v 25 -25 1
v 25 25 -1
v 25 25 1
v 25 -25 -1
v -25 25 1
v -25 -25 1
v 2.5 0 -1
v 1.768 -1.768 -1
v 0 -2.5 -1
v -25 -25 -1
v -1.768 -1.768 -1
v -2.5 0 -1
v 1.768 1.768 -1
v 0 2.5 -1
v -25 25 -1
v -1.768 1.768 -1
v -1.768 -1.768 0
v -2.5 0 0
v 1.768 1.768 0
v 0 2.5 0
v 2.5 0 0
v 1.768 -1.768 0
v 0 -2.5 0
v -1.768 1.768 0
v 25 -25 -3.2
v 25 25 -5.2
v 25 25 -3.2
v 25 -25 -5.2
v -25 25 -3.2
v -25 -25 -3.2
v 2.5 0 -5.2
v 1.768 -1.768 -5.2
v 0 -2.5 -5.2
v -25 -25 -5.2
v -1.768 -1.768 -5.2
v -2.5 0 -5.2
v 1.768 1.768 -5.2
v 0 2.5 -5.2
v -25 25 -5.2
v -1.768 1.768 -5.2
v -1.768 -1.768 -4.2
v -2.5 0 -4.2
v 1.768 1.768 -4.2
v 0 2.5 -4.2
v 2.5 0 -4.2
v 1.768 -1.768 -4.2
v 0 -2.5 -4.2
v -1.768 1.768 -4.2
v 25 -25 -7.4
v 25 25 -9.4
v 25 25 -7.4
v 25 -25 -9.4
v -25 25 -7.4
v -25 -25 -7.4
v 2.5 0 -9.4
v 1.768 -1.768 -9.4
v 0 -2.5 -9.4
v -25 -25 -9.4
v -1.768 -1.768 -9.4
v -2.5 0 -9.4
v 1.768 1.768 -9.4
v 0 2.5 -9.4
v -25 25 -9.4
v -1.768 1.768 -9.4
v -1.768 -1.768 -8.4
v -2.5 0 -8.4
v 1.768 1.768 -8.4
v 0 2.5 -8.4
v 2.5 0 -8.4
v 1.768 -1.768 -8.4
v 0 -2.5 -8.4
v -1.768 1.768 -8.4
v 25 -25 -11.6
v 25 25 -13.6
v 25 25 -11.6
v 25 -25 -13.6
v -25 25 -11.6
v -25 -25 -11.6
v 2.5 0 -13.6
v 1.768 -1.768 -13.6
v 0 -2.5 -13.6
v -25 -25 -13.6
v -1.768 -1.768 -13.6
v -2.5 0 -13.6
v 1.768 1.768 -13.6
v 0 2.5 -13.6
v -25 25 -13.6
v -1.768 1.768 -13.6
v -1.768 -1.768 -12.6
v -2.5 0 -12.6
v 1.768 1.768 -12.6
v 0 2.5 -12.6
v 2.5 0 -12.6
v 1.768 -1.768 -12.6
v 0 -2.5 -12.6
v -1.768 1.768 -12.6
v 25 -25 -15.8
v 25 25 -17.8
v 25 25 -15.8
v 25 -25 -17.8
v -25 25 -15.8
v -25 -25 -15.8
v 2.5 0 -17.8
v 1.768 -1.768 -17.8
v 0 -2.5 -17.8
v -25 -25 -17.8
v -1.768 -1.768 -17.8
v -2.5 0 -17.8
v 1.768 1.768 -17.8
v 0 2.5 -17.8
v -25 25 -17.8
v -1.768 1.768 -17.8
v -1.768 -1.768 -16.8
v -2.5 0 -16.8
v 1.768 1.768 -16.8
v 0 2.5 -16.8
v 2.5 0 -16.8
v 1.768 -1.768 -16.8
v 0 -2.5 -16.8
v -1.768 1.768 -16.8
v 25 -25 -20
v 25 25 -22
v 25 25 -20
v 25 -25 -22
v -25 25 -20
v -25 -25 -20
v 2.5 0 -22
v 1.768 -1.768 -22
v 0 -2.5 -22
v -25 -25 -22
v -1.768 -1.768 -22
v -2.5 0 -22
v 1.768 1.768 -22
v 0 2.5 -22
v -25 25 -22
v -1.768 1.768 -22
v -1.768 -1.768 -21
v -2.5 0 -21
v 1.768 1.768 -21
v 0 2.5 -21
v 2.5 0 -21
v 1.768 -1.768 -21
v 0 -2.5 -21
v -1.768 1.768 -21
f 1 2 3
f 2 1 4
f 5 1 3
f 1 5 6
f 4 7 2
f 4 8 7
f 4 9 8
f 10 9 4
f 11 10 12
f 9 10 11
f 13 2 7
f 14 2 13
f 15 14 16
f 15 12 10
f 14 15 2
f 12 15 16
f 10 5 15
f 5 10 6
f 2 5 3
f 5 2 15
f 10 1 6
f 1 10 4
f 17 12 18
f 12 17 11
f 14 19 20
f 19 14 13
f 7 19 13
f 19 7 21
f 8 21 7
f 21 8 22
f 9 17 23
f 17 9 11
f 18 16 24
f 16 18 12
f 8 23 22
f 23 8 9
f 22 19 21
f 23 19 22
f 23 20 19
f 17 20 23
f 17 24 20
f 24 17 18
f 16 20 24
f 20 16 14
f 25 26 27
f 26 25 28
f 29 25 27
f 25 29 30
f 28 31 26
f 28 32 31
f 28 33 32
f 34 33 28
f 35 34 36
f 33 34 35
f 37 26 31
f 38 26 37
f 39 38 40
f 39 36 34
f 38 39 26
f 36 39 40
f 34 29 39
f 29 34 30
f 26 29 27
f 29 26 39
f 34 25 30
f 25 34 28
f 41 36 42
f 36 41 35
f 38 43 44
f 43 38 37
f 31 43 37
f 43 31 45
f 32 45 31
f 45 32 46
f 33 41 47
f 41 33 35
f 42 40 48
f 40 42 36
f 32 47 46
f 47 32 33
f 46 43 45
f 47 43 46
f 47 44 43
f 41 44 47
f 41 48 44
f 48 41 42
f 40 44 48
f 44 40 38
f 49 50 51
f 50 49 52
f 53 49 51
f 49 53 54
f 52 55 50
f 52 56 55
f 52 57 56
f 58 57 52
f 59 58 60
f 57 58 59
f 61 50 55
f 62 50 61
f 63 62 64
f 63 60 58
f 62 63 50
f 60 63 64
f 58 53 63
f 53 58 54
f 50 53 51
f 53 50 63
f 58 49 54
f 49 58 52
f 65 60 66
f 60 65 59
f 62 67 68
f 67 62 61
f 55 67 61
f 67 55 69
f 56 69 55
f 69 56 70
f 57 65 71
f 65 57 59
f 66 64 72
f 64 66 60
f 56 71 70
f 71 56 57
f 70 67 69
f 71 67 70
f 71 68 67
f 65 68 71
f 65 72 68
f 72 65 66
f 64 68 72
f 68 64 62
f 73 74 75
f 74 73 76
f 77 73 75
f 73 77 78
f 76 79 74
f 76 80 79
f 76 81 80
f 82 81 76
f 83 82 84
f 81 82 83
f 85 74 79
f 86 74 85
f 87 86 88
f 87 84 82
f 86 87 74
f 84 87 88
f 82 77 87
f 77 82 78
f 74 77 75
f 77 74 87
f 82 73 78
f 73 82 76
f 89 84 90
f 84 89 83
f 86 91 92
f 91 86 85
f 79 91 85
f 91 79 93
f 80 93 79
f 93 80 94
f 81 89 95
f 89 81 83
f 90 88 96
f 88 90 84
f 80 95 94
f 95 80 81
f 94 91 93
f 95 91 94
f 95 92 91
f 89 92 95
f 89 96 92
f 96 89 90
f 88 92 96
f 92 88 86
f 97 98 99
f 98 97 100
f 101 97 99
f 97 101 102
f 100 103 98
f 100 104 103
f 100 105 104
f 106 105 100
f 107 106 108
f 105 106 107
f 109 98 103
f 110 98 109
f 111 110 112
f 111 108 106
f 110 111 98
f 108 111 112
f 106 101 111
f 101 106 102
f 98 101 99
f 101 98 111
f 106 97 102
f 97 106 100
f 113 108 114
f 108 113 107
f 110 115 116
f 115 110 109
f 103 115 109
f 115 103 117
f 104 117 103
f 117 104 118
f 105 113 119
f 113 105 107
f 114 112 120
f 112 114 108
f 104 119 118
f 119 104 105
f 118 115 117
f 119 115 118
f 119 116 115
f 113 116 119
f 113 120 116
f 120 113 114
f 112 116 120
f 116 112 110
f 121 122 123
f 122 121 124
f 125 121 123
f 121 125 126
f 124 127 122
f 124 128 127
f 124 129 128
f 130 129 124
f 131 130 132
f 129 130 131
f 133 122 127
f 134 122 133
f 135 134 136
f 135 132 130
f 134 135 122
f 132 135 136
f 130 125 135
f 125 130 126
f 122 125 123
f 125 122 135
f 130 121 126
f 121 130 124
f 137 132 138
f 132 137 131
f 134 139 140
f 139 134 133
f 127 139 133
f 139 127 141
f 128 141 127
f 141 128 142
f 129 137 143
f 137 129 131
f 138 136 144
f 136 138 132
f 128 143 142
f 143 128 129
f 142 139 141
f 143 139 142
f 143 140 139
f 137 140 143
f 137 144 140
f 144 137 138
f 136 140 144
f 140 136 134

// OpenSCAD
// Define a module for a rectangular plate
module rectangular_plate(x, y, z, hole_diameter) {
    difference() {
        cube([x, y, z], center = true);
        translate([0, 0, -z/2 - 0.1]) // Account for z offset
            cylinder(h = z + 0.2, d = hole_diameter, center = true);
    }
}

// Parameters for the rectangular plate
plate_length = 50;         // Length of the plate
plate_width = 50;          // Width of the plate
plate_thickness = 2;       // Thickness of the plate
hole_diameter = 5;         // Diameter of the central hole
spacing = 2.2;             // Spacing between layers

// Assembly of the stacked plates
for (i = [0:5]) {
    translate([0, 0, -i * (plate_thickness + spacing)])
        rectangular_plate(plate_length, plate_width, plate_thickness, hole_diameter);
}
